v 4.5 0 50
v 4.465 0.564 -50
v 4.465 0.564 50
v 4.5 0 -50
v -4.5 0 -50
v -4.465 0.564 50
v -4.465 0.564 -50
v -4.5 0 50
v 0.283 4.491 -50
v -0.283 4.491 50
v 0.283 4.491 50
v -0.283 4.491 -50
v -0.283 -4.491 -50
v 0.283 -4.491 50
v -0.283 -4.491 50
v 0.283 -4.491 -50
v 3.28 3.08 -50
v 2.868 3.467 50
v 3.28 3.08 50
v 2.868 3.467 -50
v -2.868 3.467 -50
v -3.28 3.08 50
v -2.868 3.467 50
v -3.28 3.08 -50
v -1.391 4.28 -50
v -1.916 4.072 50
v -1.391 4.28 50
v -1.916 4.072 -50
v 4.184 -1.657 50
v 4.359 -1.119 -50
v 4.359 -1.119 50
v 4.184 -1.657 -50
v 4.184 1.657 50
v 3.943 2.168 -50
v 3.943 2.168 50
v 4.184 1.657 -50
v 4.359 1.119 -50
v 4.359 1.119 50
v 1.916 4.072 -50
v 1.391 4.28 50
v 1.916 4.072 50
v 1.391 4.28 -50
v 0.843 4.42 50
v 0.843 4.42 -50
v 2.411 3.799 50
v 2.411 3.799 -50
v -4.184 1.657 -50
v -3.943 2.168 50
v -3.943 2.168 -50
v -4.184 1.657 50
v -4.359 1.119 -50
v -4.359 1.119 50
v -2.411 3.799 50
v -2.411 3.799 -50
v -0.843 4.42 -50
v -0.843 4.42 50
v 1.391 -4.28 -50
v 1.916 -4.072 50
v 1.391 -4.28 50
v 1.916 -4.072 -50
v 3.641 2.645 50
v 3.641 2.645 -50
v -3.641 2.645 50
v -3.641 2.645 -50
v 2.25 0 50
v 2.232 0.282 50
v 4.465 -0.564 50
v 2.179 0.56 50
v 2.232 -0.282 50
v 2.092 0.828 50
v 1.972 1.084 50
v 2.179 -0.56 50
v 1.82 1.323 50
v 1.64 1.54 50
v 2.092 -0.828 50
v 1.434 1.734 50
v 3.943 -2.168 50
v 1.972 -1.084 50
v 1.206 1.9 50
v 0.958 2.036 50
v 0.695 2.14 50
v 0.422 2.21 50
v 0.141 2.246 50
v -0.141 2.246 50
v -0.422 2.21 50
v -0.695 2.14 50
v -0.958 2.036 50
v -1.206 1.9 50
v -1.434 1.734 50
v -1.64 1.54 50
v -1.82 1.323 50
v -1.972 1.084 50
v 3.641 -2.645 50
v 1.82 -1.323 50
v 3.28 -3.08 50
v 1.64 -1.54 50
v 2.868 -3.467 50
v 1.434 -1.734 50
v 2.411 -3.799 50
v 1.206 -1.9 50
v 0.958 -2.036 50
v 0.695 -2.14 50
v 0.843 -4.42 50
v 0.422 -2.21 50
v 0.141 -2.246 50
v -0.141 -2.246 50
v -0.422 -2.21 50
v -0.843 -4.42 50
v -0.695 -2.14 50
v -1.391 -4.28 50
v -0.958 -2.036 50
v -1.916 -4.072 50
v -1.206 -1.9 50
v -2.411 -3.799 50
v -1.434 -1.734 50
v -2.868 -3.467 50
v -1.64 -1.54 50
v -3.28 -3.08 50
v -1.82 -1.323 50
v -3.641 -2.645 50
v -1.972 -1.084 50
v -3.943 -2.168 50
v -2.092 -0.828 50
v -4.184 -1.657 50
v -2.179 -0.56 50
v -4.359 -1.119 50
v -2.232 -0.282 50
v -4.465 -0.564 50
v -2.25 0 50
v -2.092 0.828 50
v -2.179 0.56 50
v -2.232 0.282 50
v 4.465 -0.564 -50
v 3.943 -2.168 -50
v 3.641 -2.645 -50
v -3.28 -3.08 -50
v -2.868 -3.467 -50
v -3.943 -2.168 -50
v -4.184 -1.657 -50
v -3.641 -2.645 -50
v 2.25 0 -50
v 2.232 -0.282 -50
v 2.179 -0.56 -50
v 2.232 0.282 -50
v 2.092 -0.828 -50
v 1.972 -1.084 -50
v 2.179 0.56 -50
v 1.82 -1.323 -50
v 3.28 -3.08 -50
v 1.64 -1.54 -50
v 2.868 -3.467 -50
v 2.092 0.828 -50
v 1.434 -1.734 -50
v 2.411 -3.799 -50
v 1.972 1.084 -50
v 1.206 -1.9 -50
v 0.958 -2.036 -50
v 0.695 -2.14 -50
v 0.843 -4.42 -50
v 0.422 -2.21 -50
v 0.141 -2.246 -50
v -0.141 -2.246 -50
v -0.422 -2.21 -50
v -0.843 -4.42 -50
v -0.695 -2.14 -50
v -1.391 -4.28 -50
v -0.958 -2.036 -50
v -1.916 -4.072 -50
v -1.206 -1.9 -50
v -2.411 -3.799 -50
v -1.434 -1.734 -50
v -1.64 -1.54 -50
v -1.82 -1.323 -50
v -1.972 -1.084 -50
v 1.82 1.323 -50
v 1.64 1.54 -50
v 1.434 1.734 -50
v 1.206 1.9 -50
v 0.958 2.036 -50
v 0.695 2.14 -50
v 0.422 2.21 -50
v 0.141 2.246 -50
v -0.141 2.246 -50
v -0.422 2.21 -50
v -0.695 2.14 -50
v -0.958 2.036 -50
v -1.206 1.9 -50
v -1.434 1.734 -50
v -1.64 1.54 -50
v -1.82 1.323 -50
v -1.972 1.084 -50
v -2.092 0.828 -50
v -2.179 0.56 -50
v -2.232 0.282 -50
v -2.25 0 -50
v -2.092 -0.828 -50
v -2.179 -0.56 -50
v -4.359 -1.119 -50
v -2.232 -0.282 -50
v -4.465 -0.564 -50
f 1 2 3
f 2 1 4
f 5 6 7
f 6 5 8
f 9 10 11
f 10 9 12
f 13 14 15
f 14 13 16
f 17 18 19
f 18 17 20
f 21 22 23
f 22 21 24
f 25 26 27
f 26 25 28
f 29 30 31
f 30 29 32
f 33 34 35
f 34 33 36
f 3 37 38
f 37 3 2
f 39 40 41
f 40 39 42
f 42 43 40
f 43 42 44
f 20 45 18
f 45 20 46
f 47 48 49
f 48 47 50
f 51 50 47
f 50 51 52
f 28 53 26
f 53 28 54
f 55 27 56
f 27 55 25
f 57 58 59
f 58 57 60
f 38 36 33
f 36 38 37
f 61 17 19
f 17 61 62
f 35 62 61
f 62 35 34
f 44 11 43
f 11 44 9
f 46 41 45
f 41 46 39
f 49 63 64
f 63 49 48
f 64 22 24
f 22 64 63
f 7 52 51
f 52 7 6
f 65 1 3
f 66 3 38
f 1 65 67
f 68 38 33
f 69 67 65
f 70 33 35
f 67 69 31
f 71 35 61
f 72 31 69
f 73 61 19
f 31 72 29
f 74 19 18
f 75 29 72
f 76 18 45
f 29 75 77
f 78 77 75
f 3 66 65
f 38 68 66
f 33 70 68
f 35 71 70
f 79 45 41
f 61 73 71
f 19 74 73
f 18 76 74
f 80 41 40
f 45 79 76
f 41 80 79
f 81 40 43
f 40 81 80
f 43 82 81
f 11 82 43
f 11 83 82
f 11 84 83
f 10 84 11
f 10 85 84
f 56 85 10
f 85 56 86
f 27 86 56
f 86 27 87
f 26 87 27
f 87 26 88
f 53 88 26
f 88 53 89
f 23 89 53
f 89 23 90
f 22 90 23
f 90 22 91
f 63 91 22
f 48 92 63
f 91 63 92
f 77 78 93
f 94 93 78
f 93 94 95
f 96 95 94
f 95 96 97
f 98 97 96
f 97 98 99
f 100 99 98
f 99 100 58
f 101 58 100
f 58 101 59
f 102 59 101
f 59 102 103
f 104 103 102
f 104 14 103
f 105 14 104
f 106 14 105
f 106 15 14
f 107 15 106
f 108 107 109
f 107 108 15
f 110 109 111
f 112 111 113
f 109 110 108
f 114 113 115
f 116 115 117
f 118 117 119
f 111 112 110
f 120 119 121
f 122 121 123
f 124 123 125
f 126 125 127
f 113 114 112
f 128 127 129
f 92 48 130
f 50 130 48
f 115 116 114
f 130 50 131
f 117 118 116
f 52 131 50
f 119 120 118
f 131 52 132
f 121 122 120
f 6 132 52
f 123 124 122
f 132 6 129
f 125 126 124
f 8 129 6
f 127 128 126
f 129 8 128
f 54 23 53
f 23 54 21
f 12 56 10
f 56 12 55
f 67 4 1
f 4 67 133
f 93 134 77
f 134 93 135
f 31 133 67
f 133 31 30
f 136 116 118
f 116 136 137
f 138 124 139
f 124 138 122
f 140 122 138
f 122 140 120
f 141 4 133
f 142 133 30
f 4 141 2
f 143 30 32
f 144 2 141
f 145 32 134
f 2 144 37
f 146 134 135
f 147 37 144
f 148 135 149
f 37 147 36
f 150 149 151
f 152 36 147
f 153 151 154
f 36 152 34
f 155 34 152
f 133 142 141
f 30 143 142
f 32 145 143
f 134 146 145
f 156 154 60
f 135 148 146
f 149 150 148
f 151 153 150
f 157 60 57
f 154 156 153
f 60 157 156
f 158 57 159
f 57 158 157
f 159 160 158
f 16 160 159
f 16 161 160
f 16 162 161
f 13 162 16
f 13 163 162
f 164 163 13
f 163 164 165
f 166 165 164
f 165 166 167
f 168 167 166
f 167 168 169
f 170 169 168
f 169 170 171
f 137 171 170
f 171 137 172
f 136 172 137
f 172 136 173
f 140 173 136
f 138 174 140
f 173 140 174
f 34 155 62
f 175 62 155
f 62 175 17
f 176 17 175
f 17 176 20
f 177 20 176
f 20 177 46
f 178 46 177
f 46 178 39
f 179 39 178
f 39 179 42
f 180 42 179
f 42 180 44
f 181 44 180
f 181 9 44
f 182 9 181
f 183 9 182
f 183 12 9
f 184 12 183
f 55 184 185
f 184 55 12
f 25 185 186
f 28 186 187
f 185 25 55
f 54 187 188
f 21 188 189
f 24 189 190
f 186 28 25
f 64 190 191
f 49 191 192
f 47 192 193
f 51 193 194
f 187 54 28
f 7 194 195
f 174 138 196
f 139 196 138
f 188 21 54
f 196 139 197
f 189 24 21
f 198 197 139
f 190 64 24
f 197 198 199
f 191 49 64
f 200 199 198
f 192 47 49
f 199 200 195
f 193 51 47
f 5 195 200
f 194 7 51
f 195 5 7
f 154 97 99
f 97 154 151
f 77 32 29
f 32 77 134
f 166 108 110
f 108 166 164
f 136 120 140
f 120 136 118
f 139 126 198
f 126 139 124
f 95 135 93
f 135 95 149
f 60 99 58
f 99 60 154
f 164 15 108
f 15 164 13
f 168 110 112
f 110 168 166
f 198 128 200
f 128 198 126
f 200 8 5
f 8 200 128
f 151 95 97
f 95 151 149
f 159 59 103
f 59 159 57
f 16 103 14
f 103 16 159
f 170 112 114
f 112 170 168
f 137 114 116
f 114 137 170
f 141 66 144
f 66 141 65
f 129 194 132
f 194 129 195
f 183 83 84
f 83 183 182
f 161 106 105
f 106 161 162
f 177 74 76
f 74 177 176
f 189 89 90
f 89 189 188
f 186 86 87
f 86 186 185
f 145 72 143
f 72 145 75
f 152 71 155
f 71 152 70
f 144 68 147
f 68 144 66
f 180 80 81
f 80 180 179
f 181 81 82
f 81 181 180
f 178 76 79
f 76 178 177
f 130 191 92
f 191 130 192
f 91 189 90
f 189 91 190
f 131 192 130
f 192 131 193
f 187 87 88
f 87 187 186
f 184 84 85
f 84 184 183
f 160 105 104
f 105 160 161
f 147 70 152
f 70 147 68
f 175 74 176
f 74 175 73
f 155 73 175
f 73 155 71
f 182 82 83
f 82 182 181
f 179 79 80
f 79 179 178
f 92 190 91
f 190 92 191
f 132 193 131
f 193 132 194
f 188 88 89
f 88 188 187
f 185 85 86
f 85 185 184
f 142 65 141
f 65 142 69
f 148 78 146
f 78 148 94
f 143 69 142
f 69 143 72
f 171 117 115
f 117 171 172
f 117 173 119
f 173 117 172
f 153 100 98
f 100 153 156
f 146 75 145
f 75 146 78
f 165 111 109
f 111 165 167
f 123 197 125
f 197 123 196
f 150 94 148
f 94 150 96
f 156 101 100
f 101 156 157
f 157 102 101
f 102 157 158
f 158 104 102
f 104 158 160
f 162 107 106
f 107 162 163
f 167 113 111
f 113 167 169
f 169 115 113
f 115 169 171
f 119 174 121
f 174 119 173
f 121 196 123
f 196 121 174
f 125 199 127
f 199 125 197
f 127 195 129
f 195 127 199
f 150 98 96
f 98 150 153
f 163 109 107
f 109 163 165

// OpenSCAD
$fn = 50;


difference() {
	union() {
		translate(v = [0, 0, -50.0000000000]) {
			cylinder(h = 100, r = 4.5000000000);
		}
	}
	union() {
		translate(v = [0, 0, -100.0000000000]) {
			cylinder(h = 200, r = 2.2500000000);
		}
	}
}
